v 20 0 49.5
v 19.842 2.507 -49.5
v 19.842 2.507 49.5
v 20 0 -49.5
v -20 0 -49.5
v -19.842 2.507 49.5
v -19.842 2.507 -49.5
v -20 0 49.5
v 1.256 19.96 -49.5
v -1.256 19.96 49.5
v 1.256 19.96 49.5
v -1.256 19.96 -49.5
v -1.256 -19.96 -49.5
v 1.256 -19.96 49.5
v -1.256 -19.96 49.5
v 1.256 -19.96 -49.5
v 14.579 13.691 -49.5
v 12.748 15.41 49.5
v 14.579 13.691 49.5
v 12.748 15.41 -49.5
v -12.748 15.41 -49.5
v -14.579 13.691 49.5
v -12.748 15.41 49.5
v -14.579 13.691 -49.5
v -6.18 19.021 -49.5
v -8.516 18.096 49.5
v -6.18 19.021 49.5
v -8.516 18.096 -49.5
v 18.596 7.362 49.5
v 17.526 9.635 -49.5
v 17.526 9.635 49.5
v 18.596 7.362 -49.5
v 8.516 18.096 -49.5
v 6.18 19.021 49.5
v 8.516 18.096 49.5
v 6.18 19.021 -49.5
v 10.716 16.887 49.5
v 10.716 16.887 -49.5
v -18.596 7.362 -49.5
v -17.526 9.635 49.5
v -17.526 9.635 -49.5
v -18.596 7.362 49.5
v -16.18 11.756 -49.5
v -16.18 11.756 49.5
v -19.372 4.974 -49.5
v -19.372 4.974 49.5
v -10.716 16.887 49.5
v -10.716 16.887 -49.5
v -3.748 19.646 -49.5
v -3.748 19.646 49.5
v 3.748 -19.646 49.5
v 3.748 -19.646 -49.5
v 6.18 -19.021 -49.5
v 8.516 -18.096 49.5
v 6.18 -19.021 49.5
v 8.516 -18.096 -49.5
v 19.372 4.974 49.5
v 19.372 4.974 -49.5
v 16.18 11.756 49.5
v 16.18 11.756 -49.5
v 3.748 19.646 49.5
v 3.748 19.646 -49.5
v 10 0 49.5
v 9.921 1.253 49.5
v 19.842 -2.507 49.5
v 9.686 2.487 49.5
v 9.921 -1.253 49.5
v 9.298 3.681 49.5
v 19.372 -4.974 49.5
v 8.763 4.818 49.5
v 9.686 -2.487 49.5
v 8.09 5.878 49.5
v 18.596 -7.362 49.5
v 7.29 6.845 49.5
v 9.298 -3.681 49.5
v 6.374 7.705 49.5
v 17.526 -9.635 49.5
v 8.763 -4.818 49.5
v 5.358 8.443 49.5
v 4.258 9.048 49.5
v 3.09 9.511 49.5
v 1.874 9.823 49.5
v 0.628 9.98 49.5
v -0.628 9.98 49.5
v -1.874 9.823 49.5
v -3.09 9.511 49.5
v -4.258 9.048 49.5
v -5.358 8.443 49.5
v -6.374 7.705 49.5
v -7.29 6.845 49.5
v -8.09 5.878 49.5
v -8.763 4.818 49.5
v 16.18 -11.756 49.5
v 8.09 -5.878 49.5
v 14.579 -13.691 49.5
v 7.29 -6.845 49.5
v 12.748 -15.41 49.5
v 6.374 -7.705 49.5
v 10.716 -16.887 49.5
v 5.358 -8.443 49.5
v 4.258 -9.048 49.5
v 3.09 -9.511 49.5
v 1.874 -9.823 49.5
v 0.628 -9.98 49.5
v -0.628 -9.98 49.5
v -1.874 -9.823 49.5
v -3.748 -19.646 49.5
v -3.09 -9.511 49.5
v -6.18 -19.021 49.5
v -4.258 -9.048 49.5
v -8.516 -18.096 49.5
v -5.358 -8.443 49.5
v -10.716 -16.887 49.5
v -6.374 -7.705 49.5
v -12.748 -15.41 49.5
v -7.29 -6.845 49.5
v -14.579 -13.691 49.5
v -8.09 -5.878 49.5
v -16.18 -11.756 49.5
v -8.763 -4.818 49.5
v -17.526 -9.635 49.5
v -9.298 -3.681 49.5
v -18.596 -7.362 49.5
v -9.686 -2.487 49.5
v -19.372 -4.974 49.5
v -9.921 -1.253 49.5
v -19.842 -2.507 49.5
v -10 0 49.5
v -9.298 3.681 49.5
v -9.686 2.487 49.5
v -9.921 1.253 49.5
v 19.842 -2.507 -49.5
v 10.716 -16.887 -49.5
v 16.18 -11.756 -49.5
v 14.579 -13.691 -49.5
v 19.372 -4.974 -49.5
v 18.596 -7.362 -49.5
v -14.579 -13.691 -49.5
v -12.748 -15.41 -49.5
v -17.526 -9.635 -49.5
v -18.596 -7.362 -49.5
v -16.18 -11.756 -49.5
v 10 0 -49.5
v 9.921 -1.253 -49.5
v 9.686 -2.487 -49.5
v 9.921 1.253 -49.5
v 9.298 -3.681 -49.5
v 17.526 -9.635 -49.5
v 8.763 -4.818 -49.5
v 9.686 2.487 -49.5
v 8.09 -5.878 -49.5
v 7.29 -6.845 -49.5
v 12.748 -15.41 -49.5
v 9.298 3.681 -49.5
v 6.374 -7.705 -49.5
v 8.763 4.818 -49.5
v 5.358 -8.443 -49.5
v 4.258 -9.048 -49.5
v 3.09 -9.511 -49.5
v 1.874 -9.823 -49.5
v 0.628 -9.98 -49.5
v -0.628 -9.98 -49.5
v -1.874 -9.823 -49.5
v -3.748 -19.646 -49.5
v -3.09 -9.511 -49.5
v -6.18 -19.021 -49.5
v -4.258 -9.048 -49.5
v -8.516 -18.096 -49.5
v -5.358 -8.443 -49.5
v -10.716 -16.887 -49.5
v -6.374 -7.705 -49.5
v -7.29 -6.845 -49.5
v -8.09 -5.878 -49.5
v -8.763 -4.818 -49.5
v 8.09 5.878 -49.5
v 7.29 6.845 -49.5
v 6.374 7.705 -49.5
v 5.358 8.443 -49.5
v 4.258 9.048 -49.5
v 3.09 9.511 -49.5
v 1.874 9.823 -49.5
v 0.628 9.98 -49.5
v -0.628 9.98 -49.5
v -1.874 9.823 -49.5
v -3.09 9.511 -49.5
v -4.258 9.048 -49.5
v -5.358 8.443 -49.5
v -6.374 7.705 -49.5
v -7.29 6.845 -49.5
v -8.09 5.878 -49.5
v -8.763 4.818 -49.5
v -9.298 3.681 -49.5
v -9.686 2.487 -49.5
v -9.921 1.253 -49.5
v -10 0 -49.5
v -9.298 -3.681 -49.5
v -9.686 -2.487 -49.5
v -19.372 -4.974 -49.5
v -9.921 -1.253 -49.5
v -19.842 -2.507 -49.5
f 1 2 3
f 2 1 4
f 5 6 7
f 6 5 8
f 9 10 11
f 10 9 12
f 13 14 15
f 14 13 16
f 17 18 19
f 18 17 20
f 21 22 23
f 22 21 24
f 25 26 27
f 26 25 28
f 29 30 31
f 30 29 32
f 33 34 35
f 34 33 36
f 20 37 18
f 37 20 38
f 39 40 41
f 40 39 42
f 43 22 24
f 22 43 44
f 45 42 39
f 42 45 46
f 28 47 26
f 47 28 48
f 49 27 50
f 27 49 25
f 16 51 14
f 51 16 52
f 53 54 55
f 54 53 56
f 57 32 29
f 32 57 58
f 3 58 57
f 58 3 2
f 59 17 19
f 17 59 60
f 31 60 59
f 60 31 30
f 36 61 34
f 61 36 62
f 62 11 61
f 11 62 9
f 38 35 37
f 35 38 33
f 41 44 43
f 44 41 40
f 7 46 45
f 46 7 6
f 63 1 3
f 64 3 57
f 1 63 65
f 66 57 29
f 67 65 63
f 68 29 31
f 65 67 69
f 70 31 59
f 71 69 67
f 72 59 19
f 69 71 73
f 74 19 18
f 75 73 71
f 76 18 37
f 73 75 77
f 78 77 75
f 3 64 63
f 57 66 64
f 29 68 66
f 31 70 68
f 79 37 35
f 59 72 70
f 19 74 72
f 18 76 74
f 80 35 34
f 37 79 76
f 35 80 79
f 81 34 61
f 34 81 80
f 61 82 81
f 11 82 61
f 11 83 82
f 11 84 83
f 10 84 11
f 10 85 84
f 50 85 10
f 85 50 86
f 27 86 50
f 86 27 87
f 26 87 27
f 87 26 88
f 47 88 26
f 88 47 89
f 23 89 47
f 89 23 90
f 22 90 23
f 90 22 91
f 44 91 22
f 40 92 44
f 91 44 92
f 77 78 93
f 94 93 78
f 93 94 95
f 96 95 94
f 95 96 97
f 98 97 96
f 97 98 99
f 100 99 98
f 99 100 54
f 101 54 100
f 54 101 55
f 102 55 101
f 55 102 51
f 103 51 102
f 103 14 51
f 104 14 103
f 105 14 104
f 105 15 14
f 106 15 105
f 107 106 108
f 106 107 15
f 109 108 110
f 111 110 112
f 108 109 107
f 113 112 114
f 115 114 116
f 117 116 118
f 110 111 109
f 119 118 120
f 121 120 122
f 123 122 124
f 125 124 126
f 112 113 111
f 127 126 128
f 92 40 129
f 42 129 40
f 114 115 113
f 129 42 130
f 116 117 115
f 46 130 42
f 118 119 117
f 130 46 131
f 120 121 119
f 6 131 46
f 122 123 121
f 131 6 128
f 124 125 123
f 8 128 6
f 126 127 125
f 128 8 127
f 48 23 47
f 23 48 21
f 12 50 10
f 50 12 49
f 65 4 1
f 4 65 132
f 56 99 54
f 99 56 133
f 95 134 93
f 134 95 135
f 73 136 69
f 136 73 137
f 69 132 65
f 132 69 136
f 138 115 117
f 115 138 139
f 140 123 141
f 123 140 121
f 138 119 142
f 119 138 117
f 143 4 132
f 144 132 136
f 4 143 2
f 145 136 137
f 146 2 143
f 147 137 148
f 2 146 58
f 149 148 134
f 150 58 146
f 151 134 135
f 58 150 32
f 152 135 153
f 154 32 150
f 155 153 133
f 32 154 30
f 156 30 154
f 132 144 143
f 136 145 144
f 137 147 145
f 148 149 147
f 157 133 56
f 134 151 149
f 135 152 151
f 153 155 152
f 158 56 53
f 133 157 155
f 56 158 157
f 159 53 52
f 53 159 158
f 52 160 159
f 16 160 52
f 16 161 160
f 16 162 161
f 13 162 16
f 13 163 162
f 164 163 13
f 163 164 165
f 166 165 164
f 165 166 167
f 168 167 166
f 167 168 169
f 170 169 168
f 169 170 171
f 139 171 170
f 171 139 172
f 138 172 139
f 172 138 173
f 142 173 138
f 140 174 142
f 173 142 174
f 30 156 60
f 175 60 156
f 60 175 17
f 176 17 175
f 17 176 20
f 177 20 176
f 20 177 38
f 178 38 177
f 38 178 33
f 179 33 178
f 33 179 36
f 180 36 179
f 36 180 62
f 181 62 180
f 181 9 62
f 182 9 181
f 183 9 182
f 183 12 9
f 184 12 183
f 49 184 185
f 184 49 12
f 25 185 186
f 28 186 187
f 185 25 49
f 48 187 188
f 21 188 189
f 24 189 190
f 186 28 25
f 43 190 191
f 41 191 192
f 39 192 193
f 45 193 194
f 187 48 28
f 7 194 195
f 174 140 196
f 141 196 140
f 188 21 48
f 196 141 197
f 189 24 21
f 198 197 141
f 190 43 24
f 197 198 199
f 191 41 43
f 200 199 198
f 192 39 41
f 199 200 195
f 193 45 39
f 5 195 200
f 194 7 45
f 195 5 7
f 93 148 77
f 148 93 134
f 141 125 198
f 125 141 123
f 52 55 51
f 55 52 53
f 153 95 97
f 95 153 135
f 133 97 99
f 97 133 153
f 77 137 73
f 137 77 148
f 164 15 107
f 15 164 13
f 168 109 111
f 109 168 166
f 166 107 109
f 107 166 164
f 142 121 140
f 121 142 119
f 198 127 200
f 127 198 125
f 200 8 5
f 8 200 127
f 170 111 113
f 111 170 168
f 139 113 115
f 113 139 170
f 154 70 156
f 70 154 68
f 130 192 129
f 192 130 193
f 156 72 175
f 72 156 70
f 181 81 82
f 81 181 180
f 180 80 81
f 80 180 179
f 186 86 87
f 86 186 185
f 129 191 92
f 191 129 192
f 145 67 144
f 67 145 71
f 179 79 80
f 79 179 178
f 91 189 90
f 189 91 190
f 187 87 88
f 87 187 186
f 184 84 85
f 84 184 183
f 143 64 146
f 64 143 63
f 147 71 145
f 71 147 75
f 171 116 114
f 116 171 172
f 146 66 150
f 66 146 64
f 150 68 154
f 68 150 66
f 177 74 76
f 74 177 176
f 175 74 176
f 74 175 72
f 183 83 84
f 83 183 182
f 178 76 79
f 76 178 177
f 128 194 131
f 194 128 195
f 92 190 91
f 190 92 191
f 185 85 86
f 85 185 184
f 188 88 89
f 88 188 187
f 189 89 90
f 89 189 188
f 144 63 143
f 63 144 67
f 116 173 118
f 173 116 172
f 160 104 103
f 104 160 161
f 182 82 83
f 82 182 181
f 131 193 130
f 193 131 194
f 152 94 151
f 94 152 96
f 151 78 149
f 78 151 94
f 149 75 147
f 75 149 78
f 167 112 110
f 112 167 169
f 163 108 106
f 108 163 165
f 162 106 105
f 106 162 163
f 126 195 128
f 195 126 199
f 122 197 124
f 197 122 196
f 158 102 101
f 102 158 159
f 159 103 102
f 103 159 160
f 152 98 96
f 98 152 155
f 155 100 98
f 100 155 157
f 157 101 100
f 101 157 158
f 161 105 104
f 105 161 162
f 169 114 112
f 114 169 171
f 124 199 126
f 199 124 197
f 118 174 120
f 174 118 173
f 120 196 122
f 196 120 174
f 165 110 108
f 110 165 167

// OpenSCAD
$fn = 50;


difference() {
	union() {
		translate(v = [0, 0, -49.5000000000]) {
			cylinder(h = 99, r = 20.0000000000);
		}
	}
	union() {
		translate(v = [0, 0, -100.0000000000]) {
			cylinder(h = 200, r = 10);
		}
	}
}
